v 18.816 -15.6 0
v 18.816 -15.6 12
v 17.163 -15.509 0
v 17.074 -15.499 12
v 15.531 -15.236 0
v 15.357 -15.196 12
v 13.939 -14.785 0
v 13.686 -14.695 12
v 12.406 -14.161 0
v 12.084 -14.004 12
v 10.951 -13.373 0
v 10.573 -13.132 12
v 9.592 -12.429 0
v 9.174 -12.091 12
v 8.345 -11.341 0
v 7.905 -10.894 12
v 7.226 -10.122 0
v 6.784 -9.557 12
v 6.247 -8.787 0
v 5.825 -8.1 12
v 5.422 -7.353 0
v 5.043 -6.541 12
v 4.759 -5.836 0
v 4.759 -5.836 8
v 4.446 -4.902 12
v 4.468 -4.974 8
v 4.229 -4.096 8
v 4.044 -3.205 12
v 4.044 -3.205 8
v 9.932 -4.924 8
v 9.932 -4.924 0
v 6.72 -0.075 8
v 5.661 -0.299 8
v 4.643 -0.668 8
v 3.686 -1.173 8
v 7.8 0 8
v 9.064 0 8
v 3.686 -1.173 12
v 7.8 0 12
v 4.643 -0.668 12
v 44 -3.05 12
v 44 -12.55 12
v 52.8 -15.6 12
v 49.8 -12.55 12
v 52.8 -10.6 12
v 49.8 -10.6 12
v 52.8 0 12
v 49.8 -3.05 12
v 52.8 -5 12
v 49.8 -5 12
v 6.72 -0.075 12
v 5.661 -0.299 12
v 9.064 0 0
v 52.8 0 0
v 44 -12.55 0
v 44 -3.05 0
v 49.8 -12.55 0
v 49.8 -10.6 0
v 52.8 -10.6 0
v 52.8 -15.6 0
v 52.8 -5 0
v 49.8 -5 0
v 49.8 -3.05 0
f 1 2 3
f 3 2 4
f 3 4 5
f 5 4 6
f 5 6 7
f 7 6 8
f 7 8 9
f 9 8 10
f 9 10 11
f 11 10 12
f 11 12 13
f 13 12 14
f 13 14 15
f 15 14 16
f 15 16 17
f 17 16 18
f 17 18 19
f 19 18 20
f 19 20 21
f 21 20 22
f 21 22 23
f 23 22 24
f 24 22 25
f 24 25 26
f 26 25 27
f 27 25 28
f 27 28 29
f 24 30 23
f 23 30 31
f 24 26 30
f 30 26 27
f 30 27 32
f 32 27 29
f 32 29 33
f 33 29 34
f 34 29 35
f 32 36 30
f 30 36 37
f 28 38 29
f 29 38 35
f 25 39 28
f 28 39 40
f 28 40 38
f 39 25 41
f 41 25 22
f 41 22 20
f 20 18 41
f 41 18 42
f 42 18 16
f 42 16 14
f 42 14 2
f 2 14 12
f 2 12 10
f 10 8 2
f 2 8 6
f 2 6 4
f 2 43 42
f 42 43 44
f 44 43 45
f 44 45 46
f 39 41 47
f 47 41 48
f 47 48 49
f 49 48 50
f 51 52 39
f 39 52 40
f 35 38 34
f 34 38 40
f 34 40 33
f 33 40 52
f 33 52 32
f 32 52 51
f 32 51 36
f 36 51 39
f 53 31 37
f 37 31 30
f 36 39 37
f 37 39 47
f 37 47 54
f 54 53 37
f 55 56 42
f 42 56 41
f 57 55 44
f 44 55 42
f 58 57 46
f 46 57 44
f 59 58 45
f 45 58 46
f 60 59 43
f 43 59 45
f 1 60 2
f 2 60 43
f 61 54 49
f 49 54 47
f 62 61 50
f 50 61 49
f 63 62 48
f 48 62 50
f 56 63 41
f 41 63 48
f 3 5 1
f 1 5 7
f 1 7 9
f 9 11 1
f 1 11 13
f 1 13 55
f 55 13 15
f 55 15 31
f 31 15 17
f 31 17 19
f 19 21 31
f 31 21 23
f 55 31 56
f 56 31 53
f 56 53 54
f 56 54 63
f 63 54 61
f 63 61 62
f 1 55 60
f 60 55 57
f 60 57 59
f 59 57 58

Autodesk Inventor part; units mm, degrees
ref_plane "YZ Plane" through (0, 0, 0) normal (1, 0, 0) x (0, 1, 0)
ref_plane "XZ Plane" through (0, 0, 0) normal (0, 1, 0) x (-1, 0, 0)
ref_plane "XY Plane" through (0, 0, 0) normal (0, 0, 1) x (1, 0, 0)
sketch "Sketch5" plane through (0, 0, 0) normal (0, 0, 1) x (1, 0, 0)
  line L0 (52.8, -15.6) -> (52.8, -10.6)
  line L1 (52.8, -10.6) -> (49.8, -10.6)
  line L2 (49.8, -10.6) -> (49.8, -12.55)
  line L3 (44, -12.55) -> (44, -3.05)
  line L4 (49.8, -3.05) -> (49.8, -5)
  line L5 (49.8, -5) -> (52.8, -5)
  line L6 (52.8, -5) -> (52.8, 0)
  line L7 (52.8, 0) -> (7.8, 0)
  line L8 (44, -3.05) -> (49.8, -3.05)
  line L9 (44, -12.55) -> (49.8, -12.55)
  line L10 (52.8, -15.6) -> (7.8, -15.6)
  arc A0 (7.8, 0) -> (7.8, -15.6) centre (7.8, -7.8) ccw
  point P0 (0, 0)
  dimension "d41" = 5.8
  dimension "d48" = 44
  dimension "d50" = 3
  dimension "d63" = 45
  dimension "d67" = 15.6
  dimension "d71" = 0
  dimension "d72" = 36.2
  dimension "d87" = 5.6
  dimension "d88" = 9.5
extrude "Extrusion2" add sketch "Sketch5" along normal blind 12
sketch "Sketch11" plane through (0, 0, 12) normal (0, 0, 1) x (1, 0, 0)
  line L0 (52.8, 0) -> (7.8, 0) projected
  line L1 (9.0635, 0) -> (9.9318, -4.924)
  line L2 (9.9318, -4.924) -> (0.0837, -6.6605)
  arc A0 (7.8, 0) -> (7.8, -15.6) centre (7.8, -7.8) ccw projected
  point P0 (0, 0)
  dimension "d95" = 100
  dimension "d96" = 5
  dimension "d97" = 10
extrude "Extrusion7" cut sketch "Sketch11" along normal blind 8 from surface at -12
sketch "Sketch14" plane through (0, 0, 12) normal (0, 0, 1) x (1, 0, 0)
  line L0 (2.6339, 4.7908) -> (6.9247, -19.5432)
  line L1 (6.9247, -19.5432) -> (-9.4392, -22.4286)
  line L2 (-9.4392, -22.4286) -> (-13.7299, 1.9055)
  line L3 (-13.7299, 1.9055) -> (2.6339, 4.7908)
  line L4 (9.0635, 0) -> (9.9318, -4.924) projected
  point P0 (0, 0)
  dimension "d107" = 5.5
extrude "Extrusion10" cut sketch "Sketch14" against normal through all
fillet "Fillet2" radius 15 1 edges at (6.2001, -15.4342, 6)
equation "\"l1\" = 8"
properties part number "Finray_test_8_Kerbe_10deg_V4_links"
